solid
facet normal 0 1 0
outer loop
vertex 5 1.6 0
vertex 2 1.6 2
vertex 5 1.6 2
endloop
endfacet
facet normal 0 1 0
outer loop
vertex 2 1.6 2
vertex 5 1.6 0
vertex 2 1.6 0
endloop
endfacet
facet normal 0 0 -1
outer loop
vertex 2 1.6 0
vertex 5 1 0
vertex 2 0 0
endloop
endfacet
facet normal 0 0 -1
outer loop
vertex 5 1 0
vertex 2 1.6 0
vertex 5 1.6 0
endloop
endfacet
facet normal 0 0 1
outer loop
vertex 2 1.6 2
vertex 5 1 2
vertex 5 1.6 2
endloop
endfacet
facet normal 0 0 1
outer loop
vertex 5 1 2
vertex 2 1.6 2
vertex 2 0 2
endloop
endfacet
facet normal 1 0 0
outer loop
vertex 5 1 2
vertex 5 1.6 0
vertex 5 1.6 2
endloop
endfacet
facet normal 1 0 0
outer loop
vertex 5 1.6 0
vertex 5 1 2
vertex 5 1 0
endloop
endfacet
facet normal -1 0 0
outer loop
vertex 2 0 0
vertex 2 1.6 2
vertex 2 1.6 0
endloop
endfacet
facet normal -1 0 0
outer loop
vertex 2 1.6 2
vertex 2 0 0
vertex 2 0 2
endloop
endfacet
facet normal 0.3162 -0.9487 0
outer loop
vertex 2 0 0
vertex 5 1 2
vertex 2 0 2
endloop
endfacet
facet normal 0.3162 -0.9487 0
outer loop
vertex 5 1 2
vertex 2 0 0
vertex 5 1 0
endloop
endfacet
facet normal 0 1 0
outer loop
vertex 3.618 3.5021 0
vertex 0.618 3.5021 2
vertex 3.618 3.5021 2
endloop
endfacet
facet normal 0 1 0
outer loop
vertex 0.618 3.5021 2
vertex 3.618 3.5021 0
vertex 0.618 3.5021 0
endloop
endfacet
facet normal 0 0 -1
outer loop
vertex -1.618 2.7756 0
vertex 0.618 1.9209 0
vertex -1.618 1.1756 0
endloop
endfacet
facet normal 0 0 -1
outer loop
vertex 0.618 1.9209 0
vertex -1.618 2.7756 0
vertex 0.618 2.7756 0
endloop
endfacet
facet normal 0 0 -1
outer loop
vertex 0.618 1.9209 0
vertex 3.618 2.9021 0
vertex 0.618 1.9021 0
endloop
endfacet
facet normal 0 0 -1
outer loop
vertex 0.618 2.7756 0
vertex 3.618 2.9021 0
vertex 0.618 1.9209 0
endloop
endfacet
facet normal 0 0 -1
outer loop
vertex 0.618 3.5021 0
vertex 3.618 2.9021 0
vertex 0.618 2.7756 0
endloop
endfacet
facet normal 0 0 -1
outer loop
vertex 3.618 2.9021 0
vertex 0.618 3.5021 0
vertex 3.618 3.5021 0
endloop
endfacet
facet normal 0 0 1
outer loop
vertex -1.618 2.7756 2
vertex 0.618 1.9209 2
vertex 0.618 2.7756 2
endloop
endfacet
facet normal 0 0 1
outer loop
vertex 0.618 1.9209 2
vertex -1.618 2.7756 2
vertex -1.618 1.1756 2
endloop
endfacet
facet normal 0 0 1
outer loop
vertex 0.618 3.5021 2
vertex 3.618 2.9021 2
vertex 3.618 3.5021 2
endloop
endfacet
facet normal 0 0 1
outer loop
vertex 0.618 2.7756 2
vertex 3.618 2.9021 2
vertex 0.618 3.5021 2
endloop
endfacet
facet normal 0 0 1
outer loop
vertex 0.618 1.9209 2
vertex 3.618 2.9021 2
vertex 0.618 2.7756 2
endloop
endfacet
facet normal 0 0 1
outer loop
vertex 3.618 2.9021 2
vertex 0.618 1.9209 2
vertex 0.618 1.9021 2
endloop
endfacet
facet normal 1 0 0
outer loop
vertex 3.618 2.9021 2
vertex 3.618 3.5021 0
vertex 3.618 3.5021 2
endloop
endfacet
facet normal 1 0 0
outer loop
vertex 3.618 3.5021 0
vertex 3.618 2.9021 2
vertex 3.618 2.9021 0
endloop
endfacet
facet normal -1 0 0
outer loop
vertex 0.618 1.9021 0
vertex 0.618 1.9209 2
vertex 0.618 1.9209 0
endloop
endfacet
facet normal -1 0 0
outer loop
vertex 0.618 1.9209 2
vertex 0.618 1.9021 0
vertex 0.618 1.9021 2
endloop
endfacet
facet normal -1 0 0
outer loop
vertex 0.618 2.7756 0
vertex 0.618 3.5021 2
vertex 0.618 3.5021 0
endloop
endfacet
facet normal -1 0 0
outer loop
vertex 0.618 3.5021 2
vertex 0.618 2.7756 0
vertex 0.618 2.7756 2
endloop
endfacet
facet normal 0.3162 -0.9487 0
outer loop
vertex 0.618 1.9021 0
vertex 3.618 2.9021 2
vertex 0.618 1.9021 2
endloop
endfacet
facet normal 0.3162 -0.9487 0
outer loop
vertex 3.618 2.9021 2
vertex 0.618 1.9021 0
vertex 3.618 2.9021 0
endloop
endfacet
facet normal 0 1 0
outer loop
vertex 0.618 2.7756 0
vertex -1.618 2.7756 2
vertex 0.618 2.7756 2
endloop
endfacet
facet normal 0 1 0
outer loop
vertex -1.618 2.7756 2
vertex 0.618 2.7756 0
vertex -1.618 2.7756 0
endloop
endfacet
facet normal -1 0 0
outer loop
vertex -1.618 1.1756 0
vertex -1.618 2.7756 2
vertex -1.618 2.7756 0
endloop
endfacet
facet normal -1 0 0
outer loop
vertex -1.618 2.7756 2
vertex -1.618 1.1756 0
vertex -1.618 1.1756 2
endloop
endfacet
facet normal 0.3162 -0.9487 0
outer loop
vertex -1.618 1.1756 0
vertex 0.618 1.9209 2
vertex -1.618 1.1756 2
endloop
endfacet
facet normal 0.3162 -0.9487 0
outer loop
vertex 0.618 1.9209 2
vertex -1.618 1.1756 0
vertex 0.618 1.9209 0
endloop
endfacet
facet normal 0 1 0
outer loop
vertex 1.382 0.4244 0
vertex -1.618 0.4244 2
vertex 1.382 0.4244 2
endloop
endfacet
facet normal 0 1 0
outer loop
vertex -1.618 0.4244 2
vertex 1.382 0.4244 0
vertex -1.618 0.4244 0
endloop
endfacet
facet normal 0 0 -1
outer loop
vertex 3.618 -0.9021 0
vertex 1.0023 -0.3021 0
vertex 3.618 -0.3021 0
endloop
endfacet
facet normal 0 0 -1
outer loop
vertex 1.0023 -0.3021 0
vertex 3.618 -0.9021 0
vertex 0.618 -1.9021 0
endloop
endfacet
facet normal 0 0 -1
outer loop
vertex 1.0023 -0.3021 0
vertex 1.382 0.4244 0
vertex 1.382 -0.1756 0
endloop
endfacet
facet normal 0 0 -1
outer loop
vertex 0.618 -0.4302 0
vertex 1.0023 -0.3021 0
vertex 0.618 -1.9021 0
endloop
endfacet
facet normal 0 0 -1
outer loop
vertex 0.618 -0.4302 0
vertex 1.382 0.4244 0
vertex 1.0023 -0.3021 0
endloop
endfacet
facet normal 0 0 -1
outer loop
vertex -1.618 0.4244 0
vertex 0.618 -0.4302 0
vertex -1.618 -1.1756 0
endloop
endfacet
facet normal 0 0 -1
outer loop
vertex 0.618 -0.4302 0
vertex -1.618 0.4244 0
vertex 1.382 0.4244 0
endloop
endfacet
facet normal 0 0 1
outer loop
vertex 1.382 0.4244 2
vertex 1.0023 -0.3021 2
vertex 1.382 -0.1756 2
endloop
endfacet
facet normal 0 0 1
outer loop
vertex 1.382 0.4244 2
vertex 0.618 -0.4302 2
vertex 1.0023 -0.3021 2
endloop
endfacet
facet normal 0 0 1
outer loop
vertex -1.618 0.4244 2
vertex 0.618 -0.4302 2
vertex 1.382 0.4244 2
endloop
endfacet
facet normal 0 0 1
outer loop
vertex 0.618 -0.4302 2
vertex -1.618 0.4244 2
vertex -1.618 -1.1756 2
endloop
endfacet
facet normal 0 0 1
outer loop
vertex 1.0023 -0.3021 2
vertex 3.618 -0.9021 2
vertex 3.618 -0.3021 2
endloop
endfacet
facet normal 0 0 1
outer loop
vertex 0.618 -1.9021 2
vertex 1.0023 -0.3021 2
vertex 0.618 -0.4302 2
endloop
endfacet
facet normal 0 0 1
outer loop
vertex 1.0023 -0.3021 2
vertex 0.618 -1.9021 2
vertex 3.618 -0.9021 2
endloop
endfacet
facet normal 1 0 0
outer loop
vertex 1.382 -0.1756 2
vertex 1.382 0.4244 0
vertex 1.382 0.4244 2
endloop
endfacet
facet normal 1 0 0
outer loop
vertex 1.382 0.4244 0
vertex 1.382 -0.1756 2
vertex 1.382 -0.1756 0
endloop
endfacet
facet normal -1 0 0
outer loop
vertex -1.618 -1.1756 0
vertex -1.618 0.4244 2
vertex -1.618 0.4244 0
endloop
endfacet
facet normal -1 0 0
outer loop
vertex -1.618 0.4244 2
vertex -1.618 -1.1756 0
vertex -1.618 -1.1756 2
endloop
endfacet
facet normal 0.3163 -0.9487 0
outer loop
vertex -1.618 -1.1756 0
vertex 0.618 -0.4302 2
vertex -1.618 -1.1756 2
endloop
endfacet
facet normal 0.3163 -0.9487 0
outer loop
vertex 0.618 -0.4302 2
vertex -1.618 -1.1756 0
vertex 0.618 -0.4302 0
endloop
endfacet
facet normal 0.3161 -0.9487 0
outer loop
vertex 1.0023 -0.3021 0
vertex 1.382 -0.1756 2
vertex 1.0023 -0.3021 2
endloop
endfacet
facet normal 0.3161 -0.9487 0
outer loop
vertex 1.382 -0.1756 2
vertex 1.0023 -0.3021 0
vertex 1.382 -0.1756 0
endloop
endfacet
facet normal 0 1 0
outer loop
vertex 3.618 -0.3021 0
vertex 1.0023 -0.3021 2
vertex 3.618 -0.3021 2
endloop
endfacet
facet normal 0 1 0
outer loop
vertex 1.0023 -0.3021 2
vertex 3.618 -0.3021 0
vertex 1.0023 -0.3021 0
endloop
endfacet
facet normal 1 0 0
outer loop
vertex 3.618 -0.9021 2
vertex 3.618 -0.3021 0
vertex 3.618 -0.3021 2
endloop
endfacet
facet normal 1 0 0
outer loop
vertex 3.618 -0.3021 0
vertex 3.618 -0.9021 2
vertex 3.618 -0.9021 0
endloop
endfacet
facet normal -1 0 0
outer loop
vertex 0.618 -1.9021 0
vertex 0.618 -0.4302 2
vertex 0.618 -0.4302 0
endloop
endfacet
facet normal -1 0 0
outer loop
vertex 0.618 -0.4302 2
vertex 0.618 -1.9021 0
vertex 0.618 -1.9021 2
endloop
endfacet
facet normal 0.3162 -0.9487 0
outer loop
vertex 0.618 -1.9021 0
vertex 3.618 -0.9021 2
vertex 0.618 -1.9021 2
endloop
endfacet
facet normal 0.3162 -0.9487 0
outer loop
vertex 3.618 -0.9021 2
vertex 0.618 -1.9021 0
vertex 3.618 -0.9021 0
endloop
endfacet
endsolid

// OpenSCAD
// Parameters
point_radius = 2;
point_height = 2;
point_offset = 2;

module star(points) {
  for (i = [0:5]) {
    angle = i * 360 / 5;
    
    translate([
      point_offset * cos(angle),
      point_offset * sin(angle),
      0
    ]) {
      linear_extrude(height = point_height) {
        polygon(points = [
          [0, 0],
          [point_radius * 1.5, point_radius * 0.5],
          [point_radius * 1.5, point_radius * 0.8],
          [0, point_radius * 0.8],
          [0, 0]
        ]);
      }
    }
  }
}

star(points = [
  [0, 0],
  [1.2, 1.5],
  [2.5, 2],
  [3, 3.2],
  [4, 1.8],
  [5, 0.8]
]);
